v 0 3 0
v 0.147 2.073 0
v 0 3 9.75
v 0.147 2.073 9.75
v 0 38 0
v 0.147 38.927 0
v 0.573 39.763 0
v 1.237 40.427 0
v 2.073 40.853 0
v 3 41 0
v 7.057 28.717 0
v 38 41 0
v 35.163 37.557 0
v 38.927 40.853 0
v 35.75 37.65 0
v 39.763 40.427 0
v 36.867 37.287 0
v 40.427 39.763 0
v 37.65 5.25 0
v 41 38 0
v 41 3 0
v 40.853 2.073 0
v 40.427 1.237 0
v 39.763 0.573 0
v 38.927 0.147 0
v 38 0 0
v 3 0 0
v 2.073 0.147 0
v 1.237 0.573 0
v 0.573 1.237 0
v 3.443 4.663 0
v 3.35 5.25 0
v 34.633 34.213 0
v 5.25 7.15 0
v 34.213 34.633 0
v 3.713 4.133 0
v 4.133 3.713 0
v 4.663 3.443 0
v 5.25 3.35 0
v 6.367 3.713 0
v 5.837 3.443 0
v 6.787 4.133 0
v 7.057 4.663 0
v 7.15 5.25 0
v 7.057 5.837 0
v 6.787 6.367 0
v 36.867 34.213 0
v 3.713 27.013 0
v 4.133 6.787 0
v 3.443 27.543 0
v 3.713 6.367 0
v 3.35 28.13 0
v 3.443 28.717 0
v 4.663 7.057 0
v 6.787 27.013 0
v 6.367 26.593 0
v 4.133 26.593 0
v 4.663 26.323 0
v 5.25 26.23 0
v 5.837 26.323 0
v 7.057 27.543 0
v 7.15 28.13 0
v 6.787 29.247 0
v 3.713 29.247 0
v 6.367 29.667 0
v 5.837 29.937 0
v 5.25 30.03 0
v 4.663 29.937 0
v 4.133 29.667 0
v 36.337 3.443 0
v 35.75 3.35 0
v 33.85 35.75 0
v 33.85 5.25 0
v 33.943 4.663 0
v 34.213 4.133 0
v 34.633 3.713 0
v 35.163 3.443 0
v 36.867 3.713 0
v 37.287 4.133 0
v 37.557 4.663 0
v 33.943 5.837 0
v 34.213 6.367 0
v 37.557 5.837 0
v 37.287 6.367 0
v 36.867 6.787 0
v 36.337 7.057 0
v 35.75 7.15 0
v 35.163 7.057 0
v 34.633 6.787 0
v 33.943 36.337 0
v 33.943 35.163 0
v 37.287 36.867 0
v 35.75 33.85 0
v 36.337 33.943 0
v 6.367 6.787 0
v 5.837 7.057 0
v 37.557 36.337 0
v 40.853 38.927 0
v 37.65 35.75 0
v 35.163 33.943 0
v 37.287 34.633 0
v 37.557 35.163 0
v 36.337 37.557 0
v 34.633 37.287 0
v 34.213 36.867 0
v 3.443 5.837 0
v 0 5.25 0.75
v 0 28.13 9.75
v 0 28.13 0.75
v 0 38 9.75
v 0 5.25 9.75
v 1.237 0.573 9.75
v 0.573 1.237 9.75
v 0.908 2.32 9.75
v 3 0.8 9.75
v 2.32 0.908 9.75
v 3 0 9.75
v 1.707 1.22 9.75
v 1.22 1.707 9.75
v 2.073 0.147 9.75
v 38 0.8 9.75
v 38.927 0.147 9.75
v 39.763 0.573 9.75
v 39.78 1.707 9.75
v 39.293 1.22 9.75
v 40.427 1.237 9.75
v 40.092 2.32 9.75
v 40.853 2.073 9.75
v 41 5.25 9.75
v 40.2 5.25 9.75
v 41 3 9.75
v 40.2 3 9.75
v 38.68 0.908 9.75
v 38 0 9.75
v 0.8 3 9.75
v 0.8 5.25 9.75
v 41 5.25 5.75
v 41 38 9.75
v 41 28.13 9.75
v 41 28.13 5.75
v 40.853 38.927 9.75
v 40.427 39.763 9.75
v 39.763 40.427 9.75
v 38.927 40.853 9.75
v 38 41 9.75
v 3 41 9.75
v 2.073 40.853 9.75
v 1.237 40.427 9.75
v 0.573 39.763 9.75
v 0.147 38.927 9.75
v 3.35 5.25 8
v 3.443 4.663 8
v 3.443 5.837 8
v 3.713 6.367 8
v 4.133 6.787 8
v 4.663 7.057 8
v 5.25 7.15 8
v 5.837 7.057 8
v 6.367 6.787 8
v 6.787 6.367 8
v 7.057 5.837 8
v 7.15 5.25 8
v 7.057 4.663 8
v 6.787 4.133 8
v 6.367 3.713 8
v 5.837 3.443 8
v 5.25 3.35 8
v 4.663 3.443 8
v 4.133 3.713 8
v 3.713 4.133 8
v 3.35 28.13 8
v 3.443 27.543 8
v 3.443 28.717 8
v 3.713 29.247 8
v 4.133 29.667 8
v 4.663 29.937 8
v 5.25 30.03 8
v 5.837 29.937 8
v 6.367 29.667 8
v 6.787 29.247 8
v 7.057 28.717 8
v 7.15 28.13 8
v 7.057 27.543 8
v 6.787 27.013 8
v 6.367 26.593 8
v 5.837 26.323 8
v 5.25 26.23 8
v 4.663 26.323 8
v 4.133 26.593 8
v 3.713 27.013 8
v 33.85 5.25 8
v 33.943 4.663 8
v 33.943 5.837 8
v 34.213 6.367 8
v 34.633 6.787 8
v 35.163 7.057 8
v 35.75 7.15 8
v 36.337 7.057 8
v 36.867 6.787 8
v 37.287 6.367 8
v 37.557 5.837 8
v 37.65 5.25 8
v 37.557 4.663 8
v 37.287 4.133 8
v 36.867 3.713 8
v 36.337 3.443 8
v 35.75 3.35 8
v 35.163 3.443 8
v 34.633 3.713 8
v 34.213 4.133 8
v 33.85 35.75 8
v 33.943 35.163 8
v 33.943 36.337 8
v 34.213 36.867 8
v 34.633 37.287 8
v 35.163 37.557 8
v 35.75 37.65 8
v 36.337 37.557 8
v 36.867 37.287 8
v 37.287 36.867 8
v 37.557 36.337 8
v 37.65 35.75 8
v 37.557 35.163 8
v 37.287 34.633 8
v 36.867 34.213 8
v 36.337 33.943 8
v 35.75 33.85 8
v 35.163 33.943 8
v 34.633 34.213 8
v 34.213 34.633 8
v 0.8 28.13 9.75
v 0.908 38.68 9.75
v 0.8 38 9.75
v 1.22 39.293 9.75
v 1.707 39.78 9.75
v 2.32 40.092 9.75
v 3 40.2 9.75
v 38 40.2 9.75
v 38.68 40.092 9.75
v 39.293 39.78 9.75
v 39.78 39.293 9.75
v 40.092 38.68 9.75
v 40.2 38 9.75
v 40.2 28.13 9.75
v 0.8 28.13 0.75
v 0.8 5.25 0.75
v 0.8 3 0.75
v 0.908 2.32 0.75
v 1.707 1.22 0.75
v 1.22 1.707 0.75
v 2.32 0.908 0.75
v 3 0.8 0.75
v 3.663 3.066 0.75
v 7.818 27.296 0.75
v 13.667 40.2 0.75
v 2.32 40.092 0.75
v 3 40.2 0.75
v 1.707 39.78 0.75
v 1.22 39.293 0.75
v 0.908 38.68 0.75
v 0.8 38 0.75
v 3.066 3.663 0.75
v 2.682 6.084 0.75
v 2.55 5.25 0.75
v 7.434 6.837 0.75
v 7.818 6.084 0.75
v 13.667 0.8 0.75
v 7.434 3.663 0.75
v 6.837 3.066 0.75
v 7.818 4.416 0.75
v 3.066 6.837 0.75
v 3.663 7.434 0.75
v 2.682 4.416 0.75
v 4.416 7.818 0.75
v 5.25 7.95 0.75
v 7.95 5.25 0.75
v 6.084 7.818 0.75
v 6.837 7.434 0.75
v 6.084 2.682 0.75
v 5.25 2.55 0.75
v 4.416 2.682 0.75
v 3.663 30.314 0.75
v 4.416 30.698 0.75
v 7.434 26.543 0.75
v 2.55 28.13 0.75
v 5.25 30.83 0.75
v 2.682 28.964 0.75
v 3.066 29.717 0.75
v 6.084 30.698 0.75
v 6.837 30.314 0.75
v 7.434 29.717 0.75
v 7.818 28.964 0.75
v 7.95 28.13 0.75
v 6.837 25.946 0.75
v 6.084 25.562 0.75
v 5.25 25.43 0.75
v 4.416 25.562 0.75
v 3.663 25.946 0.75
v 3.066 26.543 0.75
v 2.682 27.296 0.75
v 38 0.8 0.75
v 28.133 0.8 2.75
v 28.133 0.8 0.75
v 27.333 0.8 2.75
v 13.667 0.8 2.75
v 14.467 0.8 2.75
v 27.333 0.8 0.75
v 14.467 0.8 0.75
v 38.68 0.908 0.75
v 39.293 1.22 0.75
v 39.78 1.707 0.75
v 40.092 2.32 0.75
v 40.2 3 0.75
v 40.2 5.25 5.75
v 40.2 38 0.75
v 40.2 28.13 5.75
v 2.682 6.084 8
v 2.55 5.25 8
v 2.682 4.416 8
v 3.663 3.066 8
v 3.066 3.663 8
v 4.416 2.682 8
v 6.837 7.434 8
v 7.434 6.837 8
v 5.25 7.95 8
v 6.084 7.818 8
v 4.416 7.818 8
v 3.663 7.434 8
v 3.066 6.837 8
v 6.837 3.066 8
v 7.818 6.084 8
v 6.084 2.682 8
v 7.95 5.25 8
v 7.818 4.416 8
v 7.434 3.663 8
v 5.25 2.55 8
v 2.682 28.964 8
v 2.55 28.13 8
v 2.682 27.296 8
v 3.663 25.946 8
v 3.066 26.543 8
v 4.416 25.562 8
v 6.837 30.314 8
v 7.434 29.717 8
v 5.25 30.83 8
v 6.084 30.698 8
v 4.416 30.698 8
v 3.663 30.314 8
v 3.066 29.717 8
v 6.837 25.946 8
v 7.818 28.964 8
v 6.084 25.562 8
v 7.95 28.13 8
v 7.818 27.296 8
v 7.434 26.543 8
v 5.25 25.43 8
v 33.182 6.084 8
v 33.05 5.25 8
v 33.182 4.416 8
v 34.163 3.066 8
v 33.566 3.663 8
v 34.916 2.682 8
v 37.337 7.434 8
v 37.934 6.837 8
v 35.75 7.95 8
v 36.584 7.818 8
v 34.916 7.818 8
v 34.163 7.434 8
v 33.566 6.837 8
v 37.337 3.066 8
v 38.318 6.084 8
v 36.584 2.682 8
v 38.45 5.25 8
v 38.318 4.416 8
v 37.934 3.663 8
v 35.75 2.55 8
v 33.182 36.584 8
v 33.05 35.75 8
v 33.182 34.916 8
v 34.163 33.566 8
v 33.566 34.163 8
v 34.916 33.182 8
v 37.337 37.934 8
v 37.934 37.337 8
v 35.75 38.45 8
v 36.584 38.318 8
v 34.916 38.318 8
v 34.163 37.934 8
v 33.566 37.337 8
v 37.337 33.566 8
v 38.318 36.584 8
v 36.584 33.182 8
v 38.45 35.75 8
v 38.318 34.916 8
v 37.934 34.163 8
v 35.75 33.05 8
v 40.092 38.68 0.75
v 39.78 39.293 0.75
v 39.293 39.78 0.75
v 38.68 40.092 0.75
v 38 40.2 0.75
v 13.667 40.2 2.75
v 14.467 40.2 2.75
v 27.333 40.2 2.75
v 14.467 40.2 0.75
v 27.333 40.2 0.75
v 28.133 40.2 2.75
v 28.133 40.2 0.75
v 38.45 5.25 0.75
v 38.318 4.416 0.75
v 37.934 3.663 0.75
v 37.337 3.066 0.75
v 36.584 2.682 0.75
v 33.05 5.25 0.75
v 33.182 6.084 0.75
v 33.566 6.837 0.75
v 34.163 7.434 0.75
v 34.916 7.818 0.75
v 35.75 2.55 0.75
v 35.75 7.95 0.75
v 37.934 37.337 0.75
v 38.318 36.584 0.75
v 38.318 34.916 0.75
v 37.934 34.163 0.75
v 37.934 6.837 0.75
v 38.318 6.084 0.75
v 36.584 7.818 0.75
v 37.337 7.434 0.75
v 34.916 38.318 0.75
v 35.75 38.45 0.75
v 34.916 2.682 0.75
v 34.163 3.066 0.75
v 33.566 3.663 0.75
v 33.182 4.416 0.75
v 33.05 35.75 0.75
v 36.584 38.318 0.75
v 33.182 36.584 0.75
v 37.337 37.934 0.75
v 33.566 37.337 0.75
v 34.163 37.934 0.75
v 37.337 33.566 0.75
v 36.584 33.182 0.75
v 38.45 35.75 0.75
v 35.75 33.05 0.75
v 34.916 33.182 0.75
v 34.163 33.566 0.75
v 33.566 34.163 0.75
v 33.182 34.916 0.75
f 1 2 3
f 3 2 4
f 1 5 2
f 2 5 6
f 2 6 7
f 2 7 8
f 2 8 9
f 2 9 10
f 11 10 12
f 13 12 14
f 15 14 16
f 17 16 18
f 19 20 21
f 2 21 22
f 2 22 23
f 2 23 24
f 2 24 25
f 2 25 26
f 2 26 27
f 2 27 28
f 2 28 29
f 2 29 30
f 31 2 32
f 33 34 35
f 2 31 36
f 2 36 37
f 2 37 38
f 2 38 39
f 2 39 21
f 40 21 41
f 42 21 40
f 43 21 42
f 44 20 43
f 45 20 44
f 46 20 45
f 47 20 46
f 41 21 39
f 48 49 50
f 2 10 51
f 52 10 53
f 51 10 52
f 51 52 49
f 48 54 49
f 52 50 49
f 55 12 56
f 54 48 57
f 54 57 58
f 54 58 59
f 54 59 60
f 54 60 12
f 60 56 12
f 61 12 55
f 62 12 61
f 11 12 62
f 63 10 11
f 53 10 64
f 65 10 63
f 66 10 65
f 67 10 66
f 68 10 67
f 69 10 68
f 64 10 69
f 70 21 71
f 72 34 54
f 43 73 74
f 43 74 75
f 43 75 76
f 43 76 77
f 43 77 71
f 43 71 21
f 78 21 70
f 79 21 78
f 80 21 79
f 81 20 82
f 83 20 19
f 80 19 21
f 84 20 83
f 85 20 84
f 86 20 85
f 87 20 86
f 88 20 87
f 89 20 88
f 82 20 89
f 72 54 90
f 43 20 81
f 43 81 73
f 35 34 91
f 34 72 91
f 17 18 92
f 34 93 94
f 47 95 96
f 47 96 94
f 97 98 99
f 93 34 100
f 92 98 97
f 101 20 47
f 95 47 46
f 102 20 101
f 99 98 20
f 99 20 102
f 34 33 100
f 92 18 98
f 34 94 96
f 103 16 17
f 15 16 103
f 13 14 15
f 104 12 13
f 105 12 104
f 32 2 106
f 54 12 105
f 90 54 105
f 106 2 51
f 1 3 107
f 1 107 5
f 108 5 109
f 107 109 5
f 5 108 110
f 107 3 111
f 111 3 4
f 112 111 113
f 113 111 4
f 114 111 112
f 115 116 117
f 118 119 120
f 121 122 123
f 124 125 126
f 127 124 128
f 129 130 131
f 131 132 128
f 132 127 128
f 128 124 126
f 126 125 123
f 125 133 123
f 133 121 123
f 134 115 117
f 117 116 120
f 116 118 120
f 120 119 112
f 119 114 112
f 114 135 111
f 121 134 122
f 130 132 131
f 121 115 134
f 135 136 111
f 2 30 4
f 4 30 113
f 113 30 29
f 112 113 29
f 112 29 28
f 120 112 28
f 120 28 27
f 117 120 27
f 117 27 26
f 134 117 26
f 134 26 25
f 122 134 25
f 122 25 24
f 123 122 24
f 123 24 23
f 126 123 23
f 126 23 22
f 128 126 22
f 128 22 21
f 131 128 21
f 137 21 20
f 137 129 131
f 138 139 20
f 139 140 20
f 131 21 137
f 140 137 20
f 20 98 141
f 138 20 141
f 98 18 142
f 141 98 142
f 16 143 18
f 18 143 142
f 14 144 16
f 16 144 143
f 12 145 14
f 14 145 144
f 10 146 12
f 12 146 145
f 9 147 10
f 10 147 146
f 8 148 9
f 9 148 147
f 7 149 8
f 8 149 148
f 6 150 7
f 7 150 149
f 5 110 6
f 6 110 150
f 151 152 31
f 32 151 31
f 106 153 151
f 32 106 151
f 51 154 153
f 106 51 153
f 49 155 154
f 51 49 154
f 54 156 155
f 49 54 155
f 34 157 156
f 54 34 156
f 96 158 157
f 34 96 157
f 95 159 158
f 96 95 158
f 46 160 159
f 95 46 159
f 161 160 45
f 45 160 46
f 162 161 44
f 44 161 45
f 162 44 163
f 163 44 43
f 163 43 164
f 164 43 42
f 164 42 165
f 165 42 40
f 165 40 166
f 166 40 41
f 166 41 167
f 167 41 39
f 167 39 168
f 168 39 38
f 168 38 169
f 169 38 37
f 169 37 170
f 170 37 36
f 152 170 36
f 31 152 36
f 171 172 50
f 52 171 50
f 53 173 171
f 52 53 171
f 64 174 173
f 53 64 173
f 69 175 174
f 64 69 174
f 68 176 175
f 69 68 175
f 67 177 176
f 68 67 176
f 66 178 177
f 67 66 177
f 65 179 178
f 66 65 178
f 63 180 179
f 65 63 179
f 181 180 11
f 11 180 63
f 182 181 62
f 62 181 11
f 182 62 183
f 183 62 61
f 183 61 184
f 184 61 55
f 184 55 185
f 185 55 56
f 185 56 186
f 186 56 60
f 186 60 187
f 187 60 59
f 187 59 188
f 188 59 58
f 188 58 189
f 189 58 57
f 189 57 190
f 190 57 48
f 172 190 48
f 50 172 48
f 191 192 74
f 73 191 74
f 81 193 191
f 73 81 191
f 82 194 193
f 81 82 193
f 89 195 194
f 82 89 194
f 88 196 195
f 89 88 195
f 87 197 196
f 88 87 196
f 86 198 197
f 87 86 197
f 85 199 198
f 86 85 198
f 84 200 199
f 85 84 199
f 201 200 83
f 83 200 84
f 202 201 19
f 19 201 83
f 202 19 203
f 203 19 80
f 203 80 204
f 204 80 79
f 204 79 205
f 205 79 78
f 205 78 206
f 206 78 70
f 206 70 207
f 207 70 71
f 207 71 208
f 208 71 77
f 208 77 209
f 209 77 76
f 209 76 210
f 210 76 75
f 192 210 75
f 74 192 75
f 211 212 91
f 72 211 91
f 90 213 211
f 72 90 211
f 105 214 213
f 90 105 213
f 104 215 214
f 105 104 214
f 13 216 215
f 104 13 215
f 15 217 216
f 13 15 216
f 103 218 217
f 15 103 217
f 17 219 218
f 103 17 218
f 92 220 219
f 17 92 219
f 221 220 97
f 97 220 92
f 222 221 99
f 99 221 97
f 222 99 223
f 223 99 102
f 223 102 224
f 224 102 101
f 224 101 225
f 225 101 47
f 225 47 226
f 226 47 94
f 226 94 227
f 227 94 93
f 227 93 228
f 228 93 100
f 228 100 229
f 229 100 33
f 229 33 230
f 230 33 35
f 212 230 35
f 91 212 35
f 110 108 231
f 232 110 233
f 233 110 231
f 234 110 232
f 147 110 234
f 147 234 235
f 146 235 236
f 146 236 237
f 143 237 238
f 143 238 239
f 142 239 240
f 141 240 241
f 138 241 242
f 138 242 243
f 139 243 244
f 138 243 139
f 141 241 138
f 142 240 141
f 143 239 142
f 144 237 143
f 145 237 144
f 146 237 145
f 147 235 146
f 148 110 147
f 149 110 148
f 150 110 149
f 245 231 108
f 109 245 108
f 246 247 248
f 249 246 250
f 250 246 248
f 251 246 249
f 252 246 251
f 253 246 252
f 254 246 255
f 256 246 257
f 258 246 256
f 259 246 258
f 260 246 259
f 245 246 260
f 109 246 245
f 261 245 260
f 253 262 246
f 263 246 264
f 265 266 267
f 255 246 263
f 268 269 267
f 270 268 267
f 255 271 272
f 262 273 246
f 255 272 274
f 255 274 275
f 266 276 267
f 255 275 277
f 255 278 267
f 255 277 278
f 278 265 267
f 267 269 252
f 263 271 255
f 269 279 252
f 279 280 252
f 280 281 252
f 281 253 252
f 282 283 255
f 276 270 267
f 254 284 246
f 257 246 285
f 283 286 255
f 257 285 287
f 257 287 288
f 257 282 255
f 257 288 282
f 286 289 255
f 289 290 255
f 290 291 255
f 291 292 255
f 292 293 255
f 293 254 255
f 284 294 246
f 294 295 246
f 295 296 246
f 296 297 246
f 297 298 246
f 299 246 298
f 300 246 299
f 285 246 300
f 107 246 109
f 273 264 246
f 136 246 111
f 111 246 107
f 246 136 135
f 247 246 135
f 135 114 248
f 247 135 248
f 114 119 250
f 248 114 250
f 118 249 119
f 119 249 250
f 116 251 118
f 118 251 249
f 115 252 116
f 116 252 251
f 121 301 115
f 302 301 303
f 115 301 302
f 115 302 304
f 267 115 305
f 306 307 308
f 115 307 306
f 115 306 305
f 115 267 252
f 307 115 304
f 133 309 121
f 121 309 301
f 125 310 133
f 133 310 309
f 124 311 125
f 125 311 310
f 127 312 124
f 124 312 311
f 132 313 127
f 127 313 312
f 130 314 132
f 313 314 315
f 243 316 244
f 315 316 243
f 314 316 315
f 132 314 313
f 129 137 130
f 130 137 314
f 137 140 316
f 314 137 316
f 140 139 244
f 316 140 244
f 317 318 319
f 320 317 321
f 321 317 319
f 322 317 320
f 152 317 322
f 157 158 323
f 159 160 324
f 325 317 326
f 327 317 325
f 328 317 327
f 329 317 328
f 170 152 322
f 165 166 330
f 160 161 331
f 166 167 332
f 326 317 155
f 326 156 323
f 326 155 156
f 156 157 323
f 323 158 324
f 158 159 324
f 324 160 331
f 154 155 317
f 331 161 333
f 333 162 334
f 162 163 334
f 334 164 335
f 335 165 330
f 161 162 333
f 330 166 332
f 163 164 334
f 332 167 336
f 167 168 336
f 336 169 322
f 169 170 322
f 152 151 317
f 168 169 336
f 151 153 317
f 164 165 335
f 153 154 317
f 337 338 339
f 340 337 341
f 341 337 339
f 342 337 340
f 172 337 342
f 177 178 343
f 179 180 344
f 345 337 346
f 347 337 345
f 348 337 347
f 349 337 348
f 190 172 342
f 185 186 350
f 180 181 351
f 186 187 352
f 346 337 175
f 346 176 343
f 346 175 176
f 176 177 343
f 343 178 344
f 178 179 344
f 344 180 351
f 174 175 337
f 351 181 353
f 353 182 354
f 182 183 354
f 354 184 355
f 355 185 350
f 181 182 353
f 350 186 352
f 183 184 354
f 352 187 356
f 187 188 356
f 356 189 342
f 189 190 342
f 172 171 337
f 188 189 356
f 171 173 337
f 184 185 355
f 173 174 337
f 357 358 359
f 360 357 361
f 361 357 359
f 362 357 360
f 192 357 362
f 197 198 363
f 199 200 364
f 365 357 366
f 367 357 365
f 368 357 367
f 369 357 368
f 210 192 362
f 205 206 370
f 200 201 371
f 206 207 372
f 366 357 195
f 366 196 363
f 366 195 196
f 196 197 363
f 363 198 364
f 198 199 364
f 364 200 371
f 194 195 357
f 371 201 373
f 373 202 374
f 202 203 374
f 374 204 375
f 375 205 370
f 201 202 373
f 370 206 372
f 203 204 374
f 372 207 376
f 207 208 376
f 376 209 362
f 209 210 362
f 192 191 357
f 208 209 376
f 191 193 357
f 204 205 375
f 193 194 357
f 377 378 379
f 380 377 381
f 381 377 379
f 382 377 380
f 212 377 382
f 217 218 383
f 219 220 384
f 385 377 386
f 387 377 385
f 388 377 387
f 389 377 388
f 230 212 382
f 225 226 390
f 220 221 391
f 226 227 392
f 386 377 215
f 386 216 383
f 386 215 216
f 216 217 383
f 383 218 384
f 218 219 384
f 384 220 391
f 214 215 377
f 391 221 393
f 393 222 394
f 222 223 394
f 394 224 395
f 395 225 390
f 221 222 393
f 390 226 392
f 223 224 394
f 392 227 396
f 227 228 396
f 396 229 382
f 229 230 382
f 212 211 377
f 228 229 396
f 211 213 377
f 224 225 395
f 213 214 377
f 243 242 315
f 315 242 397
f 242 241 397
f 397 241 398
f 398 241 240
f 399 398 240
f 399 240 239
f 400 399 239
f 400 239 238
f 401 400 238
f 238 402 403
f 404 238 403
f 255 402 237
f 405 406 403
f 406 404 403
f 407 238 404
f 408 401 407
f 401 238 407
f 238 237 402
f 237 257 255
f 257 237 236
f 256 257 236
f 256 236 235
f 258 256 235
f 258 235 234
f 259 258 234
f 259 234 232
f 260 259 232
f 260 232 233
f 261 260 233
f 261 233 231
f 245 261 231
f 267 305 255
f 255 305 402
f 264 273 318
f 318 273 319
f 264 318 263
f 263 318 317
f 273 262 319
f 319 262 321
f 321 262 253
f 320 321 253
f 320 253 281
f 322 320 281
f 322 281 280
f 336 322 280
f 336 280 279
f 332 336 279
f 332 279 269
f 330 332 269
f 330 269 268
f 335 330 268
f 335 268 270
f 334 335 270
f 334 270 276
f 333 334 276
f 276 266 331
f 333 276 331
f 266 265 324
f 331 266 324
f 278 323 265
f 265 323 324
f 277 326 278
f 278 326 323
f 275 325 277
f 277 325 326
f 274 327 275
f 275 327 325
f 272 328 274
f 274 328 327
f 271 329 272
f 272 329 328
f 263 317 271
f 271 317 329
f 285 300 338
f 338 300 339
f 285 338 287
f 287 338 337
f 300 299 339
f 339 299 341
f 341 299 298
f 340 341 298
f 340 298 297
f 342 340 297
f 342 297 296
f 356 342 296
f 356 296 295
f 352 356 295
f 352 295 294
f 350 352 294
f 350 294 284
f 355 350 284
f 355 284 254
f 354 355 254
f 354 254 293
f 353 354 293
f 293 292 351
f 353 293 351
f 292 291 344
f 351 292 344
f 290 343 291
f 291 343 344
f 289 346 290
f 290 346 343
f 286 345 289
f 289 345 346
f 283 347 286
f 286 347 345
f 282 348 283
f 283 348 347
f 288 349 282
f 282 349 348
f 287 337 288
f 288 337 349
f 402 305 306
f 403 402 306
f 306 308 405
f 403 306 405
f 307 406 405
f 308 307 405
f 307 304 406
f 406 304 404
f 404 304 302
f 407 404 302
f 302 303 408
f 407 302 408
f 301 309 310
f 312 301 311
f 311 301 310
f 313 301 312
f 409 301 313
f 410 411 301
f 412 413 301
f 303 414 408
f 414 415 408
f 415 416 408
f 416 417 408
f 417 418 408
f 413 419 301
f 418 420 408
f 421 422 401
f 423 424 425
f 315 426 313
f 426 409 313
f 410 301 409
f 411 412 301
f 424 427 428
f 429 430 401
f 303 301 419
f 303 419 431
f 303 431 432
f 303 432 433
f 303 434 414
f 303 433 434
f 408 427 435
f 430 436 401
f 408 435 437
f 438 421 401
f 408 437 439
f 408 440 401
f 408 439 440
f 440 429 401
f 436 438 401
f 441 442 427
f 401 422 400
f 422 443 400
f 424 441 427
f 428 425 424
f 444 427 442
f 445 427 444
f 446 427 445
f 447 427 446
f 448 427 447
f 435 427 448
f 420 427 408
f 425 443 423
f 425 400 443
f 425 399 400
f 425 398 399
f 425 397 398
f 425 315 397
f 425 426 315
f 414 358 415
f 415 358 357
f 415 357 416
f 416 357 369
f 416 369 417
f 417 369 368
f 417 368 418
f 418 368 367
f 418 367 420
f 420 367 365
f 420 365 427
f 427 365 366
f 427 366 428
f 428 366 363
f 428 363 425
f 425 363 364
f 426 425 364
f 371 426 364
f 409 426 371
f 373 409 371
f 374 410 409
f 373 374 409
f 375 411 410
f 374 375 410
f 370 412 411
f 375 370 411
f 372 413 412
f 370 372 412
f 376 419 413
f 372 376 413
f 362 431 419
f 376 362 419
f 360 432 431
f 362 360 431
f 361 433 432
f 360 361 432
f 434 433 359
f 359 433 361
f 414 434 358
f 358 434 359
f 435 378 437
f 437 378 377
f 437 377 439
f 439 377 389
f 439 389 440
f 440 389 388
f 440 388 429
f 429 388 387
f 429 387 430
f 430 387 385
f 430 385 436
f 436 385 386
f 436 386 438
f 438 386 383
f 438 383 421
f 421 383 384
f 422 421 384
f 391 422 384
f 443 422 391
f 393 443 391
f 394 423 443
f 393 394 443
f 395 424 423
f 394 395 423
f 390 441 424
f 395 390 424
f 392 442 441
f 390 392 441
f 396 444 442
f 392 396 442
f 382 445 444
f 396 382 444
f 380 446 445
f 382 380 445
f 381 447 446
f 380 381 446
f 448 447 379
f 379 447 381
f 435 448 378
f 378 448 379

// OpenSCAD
// file: sparky_case_settings.scad
// Coordinate system: (0,0) is SW corner of case
w_board = 36; // bounding box of board
t_board = 5; // maximum height of board + components

h_standoff = 1;
h_standoff_lid = 8;

t_base = 0.75; // three layers thick
w_wall = 0.8; // two lines wide
t_top = 0.75; // three layers thick
d_hole = 3.8; // M3 for board-case and case-frame
d_standoff = d_hole + 2*w_wall;

t_ribs = 2;
w_ribs = 0.8;
t_slots = 9; // height of slots for cable passage
t_slot_usb = 4;

w_case = 41;
t_case = t_slots + t_top; // height excluding standoffs
r_case = 3; // corner radii for base of case

// Four thru holes from SW in CW order
// See github/TauLabs/flight/targets/sparky/hw/assembly_v1.1.pdf
x = [2.75, 2.75,  33.25, 33.25];
y = [2.75, 33.25, 25.63, 2.75];

w_slots = y[2]-y[0]; // width of slows to allow right angle PWM pins through

so_inset = r_case;
x_standoff = [so_inset, so_inset, w_case-so_inset, w_case-so_inset];
y_standoff = [so_inset, w_case-so_inset, w_case-so_inset, so_inset];

x_offset = (w_case-w_board)/2;
y_offset = (w_case-w_board)/2;

$fn = 20;

// Define helper functions
module roundedRect(size, radius) {
  x = size[0];
  y = size[1];
  z = size[2];

  linear_extrude(height=z)
  hull() {
    translate([radius, radius, 0])
    circle(r=radius);

    translate([x - radius, radius, 0])
    circle(r=radius);

    translate([x - radius, y - radius, 0])
    circle(r=radius);

    translate([radius, y - radius, 0])
    circle(r=radius);
  }
}
// main file
include <sparky_case_settings.scad>;

difference() {
  union() {
  
    // Main body of the case
    difference() {
      roundedRect([w_case, w_case, t_case], r_case);

      // Case cavity
      translate([w_wall, w_wall, t_top])
      roundedRect([w_case-2*w_wall, w_case-2*w_wall, t_case], r_case-w_wall);
  
      // Cable cutout
	   translate([-w_case/2, y[0]+y_offset, t_top])
  	   cube([w_case, w_slots, t_slots]);

      // USB and flexi cutout
	   translate([+w_case/2, y[0]+y_offset, t_case-t_slot_usb])
    	 cube([w_case, w_slots, t_slot_usb]);
    }

    // Mounting posts (mirror x to maintain correct orientation)
    for (ii = [0:3]) {	
      translate([-(x[ii]+x_offset)+w_case, y[ii]+y_offset, 0])
      cylinder(h=h_standoff_lid, r=d_standoff/2);
    }

    // Support ribs
    translate([w_case/3,0,t_top])
    cube([w_ribs, w_case, t_ribs]);

    translate([2*w_case/3,0,t_top])
    cube([w_ribs, w_case, t_ribs]);
  }

  // Mounting holes (mirror x to maintain correct orientation)
  for (ii = [0:3]) {	
    translate([-(x[ii]+x_offset)+w_case, y[ii]+y_offset, 0])
    cylinder(h=t_case, r=d_hole/2);
  }
};
